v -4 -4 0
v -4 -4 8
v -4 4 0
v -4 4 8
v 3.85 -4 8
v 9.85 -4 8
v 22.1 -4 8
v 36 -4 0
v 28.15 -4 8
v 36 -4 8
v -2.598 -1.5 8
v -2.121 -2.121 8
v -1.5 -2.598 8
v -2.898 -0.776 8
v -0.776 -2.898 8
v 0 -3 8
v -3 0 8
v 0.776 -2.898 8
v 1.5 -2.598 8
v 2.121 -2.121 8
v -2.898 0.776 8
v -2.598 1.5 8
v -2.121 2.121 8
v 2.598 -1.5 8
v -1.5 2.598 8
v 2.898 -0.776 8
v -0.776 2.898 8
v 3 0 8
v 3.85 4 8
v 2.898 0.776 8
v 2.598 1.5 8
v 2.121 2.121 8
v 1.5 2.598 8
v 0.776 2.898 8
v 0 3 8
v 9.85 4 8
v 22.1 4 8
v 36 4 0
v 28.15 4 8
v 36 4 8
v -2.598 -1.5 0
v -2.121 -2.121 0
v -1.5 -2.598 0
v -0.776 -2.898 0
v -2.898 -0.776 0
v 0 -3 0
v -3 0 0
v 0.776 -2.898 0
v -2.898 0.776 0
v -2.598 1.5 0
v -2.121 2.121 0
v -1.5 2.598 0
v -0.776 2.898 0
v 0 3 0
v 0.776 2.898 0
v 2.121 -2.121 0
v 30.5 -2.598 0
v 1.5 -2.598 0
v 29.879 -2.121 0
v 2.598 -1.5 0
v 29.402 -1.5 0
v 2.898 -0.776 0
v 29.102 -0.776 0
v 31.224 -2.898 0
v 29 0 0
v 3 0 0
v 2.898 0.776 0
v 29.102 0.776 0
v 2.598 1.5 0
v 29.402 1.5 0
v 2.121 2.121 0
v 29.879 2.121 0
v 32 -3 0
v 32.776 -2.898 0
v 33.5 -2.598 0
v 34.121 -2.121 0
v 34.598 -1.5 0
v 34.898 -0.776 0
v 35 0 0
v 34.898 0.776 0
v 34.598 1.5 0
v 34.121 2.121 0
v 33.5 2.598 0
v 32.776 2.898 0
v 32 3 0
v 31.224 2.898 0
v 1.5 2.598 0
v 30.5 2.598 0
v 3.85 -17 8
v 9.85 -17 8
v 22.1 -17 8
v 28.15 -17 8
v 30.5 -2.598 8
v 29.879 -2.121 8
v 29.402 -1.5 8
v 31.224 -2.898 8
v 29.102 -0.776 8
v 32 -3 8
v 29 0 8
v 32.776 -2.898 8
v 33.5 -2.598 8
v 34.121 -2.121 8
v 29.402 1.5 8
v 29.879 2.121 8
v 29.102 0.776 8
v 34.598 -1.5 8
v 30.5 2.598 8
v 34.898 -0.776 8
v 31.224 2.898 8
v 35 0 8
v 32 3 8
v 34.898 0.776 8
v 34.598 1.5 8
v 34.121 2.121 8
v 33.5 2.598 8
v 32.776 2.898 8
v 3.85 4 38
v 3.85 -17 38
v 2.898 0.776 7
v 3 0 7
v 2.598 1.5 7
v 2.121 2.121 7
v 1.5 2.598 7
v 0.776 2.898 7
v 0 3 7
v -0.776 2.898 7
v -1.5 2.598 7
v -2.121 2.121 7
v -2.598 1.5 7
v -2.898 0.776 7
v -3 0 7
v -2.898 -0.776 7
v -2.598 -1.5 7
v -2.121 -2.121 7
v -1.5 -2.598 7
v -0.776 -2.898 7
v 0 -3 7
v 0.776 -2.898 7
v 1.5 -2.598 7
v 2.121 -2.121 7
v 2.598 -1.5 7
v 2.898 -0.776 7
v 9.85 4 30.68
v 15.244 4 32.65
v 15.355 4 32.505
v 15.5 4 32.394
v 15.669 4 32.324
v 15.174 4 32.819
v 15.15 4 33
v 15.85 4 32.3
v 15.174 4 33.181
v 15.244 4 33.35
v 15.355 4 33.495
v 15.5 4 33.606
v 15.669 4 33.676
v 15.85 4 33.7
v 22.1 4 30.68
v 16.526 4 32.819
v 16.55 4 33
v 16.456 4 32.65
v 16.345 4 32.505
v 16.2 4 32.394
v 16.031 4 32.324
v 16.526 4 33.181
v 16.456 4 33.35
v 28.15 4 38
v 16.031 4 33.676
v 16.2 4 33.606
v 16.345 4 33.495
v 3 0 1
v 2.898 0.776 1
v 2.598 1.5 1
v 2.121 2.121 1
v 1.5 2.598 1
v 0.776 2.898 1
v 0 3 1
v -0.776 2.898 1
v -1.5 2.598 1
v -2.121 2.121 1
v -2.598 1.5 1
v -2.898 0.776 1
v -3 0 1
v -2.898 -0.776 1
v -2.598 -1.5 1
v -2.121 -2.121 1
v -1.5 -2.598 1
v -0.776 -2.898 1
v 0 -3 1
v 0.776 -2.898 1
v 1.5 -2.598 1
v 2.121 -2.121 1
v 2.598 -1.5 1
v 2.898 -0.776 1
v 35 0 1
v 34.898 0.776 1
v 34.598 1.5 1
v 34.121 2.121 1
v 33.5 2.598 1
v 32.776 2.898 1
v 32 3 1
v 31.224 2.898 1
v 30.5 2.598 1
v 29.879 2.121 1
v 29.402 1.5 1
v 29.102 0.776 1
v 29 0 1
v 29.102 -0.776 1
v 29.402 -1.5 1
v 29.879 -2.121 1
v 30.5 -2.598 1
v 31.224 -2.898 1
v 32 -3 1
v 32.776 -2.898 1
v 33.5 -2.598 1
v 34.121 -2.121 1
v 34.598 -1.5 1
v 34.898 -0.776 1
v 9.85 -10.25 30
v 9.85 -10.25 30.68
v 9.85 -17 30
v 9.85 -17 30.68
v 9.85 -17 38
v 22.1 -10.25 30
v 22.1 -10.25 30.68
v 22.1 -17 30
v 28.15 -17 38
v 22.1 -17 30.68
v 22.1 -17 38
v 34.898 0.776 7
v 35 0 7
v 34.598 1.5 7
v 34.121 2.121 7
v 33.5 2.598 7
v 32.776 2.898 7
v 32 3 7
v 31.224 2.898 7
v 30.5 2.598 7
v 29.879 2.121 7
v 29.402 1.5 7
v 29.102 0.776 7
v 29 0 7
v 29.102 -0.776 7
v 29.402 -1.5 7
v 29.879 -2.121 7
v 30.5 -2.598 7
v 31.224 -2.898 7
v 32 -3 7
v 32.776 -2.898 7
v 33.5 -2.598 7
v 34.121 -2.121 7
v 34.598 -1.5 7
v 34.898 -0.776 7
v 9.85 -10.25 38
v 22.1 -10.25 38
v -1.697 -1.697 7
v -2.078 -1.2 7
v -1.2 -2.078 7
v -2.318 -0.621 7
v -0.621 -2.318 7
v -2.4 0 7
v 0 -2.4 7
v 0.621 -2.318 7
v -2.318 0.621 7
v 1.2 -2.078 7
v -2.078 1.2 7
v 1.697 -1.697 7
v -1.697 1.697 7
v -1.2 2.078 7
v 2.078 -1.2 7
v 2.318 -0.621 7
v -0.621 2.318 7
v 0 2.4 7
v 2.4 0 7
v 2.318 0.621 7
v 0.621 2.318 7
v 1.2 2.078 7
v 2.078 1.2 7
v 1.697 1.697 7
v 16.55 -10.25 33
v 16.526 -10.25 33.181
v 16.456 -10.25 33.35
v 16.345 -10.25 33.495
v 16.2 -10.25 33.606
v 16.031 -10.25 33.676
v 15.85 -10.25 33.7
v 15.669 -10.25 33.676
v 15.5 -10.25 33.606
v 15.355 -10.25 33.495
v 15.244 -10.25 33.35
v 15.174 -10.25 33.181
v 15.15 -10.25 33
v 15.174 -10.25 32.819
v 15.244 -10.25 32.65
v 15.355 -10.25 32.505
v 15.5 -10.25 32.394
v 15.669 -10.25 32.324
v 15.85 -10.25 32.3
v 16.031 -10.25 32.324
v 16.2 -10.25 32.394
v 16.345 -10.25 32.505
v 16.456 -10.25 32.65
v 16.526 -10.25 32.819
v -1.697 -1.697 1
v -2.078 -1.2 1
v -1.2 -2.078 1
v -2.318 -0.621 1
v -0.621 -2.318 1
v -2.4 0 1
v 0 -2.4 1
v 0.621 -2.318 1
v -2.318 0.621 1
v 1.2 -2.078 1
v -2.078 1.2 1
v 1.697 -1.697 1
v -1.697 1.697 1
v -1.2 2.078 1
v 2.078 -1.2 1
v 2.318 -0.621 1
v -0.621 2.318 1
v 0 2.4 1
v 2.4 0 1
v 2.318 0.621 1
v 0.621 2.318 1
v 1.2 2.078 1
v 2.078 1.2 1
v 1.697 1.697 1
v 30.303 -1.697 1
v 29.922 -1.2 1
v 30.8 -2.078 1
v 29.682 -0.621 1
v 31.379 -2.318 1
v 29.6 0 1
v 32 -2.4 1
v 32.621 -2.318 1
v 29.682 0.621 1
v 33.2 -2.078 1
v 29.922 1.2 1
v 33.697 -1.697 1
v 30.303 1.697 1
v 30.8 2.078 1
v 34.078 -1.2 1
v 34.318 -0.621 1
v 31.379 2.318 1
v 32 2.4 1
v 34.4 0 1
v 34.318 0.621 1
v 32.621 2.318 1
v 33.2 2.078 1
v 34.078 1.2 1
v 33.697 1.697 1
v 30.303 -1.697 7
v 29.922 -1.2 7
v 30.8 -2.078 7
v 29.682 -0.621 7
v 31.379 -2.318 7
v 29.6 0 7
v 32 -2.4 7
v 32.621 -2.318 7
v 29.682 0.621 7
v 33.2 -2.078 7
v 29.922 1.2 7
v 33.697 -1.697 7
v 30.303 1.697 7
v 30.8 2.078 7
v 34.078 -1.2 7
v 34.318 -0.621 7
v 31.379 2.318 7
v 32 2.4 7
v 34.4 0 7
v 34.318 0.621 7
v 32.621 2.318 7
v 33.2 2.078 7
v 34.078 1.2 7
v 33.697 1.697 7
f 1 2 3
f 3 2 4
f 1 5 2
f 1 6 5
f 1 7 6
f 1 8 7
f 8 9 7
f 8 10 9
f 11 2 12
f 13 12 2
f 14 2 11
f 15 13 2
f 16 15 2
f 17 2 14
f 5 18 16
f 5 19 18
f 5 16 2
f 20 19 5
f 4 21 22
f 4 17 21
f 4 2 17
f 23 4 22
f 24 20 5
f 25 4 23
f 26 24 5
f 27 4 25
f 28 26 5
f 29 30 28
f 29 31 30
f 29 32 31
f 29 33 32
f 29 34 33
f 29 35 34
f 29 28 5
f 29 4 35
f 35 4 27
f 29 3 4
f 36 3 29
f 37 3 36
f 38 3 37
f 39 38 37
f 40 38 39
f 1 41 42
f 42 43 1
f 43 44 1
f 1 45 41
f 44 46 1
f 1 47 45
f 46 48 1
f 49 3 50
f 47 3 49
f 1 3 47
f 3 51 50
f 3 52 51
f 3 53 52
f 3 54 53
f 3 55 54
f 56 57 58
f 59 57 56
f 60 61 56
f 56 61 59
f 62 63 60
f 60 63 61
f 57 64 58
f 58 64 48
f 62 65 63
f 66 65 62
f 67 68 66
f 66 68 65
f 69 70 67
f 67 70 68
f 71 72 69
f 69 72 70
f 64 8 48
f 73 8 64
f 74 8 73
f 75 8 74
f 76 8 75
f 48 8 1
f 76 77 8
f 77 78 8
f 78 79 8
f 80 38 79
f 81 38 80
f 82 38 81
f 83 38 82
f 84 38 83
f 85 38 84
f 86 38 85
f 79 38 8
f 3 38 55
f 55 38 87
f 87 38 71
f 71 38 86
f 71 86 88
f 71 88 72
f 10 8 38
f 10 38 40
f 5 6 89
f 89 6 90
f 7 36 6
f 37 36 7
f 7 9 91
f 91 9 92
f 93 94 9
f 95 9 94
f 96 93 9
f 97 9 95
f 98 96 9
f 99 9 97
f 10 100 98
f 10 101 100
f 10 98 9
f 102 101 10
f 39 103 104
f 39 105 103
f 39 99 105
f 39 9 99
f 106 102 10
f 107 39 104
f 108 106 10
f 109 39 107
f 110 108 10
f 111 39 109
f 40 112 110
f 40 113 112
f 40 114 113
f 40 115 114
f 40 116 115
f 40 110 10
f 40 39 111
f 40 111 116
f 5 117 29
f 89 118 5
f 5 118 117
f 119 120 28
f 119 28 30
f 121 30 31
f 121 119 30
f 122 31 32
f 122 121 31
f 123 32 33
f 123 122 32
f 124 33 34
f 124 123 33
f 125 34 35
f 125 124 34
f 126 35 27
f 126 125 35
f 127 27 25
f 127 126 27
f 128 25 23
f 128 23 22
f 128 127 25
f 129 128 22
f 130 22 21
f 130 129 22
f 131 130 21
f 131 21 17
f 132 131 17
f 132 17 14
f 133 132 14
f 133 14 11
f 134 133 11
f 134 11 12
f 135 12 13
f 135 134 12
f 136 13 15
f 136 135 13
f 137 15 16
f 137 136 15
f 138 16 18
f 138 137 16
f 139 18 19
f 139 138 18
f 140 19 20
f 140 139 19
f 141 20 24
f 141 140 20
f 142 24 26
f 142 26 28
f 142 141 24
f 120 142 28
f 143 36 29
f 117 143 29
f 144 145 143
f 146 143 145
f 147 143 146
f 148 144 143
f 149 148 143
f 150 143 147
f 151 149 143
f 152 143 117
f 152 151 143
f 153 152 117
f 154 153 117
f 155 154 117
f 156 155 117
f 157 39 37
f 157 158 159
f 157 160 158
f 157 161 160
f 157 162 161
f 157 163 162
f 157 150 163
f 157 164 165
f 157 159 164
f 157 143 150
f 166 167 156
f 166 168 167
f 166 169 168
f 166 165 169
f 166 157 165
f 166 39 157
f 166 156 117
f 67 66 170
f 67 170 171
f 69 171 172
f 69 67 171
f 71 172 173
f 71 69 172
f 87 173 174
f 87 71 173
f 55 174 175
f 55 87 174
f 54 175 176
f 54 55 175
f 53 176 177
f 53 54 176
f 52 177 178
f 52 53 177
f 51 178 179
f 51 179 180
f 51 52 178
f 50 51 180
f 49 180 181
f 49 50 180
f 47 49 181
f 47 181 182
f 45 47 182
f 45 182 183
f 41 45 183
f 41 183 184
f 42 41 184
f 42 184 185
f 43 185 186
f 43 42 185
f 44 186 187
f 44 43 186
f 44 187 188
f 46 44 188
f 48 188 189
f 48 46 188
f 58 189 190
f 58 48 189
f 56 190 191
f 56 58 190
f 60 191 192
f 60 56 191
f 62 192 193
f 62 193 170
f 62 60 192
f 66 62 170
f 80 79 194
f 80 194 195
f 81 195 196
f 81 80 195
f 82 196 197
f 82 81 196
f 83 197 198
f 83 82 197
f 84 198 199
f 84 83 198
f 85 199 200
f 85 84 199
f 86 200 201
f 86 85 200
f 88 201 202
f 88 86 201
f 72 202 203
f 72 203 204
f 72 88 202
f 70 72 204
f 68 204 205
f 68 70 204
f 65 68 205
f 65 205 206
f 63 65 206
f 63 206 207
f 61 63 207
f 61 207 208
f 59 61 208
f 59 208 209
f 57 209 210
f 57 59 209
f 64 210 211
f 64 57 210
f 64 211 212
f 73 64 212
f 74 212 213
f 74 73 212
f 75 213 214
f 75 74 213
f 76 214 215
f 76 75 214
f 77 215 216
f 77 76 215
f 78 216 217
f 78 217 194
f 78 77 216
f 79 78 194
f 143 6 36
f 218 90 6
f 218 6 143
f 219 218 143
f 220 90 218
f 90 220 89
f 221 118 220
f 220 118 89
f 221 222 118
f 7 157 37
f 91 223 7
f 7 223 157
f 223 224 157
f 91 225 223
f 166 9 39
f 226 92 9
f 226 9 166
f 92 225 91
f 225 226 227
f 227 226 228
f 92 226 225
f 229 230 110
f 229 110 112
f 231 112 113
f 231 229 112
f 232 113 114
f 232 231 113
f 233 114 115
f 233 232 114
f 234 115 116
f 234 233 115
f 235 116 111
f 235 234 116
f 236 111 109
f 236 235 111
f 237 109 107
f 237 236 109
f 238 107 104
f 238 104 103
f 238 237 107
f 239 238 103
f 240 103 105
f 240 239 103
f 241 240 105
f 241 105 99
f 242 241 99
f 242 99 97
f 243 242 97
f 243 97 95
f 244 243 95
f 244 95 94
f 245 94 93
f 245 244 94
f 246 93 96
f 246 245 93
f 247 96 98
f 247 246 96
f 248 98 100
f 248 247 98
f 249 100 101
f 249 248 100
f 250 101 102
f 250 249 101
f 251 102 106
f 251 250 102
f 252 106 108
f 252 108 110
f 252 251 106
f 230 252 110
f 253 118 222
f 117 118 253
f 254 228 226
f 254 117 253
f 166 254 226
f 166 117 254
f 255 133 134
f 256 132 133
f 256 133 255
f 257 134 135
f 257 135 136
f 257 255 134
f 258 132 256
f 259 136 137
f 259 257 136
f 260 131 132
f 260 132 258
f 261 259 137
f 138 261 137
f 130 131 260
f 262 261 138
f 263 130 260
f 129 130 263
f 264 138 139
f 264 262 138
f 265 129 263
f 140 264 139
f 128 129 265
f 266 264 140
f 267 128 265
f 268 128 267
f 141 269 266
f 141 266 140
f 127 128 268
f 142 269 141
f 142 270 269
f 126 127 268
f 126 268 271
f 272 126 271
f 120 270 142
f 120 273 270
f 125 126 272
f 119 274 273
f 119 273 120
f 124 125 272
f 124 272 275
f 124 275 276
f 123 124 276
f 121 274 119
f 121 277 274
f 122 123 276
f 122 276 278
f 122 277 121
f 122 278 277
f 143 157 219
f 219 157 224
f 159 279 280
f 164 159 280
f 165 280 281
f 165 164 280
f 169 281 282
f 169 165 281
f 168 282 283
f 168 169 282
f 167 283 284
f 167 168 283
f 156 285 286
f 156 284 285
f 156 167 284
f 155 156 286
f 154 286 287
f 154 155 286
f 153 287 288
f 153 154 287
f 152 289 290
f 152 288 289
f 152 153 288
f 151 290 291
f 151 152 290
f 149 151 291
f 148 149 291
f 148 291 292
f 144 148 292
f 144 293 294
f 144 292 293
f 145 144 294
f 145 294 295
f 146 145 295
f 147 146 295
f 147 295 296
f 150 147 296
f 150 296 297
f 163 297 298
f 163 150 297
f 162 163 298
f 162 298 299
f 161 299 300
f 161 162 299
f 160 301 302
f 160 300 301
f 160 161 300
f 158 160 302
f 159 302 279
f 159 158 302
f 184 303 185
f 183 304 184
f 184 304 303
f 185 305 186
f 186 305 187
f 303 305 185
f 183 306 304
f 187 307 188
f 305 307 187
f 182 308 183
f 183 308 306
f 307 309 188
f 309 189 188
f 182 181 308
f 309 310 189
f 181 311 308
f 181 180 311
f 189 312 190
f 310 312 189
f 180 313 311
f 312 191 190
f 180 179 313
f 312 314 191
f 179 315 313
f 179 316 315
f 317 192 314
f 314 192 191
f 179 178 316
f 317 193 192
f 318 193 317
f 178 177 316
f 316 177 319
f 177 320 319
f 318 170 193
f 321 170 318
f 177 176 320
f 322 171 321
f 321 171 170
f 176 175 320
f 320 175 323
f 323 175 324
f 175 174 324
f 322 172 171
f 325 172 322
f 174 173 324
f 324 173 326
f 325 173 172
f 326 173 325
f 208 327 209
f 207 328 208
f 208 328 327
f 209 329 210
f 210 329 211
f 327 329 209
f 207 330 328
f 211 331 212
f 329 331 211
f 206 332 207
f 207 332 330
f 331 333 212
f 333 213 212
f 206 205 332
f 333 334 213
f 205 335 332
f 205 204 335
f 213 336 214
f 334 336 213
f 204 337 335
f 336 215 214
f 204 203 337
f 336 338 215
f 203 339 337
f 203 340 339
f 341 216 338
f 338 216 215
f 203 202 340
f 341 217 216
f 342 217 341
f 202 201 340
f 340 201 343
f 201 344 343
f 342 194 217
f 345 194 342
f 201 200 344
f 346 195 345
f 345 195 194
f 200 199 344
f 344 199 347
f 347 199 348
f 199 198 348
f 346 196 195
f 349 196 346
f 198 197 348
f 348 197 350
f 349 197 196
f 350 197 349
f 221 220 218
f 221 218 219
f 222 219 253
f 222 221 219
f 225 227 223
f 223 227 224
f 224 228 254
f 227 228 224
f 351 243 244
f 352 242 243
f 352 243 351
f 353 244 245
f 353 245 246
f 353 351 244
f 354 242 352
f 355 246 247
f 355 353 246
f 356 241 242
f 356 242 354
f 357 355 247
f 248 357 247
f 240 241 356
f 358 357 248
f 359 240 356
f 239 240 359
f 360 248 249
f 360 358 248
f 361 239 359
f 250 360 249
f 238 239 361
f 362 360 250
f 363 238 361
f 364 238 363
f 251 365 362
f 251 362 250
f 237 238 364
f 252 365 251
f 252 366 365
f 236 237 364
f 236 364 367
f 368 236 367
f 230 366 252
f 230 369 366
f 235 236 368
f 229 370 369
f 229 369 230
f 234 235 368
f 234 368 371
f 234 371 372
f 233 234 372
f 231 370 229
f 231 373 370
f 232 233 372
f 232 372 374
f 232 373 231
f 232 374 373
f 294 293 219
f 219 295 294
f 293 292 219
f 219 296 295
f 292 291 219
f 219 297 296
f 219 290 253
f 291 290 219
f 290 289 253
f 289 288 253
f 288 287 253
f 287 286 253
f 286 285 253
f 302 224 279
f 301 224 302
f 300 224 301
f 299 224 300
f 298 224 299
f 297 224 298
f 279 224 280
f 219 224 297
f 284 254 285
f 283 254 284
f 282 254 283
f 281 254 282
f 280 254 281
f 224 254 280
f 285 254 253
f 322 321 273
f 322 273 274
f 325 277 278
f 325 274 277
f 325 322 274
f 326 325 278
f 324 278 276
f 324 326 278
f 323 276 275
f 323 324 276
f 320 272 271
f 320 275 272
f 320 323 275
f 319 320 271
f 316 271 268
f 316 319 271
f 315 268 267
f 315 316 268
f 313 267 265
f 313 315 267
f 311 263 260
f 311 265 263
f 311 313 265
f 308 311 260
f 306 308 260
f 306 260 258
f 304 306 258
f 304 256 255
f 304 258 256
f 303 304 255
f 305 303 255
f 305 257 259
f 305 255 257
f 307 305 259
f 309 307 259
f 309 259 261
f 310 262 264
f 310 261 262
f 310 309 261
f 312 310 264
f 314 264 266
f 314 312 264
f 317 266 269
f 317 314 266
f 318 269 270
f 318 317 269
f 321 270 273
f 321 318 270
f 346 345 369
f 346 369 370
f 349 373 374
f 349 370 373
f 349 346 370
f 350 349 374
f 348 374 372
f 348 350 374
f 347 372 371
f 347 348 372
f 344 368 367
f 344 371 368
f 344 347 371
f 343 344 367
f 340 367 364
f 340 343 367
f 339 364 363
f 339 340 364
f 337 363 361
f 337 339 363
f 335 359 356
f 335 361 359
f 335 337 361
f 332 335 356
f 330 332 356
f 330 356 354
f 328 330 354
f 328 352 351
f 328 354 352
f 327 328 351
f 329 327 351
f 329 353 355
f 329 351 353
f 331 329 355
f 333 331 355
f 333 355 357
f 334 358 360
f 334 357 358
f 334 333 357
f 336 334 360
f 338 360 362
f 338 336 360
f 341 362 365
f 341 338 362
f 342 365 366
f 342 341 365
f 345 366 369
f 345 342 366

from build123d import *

# Parameters (mm, degrees)
CYLINDER009_R     = 0.7
CYLINDER009_DEPTH = 16
BOX010_W          = 12.25
BOX010_H          = 10
BOX010_DEPTH      = 10
BOX009_W          = 12.25
BOX009_H          = 23.78
BOX009_DEPTH      = 22.68
BOX011_W          = 24.3
BOX011_H          = 21
BOX011_DEPTH      = 30
CYLINDER012_R     = 3
CYLINDER012_DEPTH = 1
CYLINDER013_R     = 2.4
CYLINDER013_DEPTH = 8
CYLINDER011_R     = 3
CYLINDER011_DEPTH = 1
ARRAY_X_COUNT     = 2
ARRAY_X_PITCH     = 32
BOX012_W          = 40
BOX012_H          = 8
BOX012_DEPTH      = 8


with BuildPart() as cylinder009:
    # Cylinder009 → Cylinder009 (new body)
    with BuildSketch(Plane(origin=(6, 22, 25), x_dir=(1, 0, 0), z_dir=(0, -1, 0))):
        Circle(CYLINDER009_R)
    extrude(amount=CYLINDER009_DEPTH)


with BuildPart() as cube006:
    # Box010 → Box010 (new body)
    with BuildSketch(Plane(origin=(0, -3.25, 22), x_dir=(1, 0, 0), z_dir=(0, 0, 1))):
        with Locations((6.125, 5)):
            Rectangle(BOX010_W, BOX010_H)
    extrude(amount=BOX010_DEPTH)


with BuildPart() as servo004:
    # Box009 → Box009 (new body)
    with BuildSketch(Plane(origin=(0, -1, 0), x_dir=(1, 0, 0), z_dir=(0, 0, 1))):
        with Locations((6.125, 11.89)):
            Rectangle(BOX009_W, BOX009_H)
    extrude(amount=BOX009_DEPTH)

    # Fusion007: union Cube006
    add(cube006.part)


with BuildPart() as fusion008:
    # Fusion008 base: copy of Cube006
    add(cube006.part)

    # Fusion008: union servo004
    add(servo004.part)


with BuildPart() as box:
    # Box011 → Box011 (new body)
    with BuildSketch(Plane(origin=(-6, 0, 0), x_dir=(1, 0, 0), z_dir=(0, 0, 1))):
        with Locations((12.15, 10.5)):
            Rectangle(BOX011_W, BOX011_H)
    extrude(amount=BOX011_DEPTH)

    # Cut006: cut Fusion008
    add(fusion008.part, mode=Mode.SUBTRACT)

    # Cut007: cut Cylinder009
    add(cylinder009.part, mode=Mode.SUBTRACT)


with BuildPart() as box_1:
    # Cut007 placement: moved
    add(box.part.moved(Location((9.85, -17, 8))))


with BuildPart() as cylinder012:
    # Cylinder012 → Cylinder012 (new body)
    with BuildSketch(Plane.XY.offset(7)):
        Circle(CYLINDER012_R)
    extrude(amount=CYLINDER012_DEPTH)


with BuildPart() as cylinder013:
    # Cylinder013 → Cylinder013 (new body)
    with BuildSketch(Plane.XY):
        Circle(CYLINDER013_R)
    extrude(amount=CYLINDER013_DEPTH)


with BuildPart() as array:
    # Cylinder011 → Cylinder011 (new body)
    with BuildSketch(Plane.XY):
        Circle(CYLINDER011_R)
    extrude(amount=CYLINDER011_DEPTH)

    # Fusion009: union Cylinder012, Cylinder013
    add(cylinder012.part)
    add(cylinder013.part)

    # Array X: Array ×2


with BuildPart() as array_1:
    add(array.part)
    with Locations(*[(i * ARRAY_X_PITCH, 0, 0) for i in range(1, ARRAY_X_COUNT)]):
        add(array.part)


with BuildPart() as fusion010:
    # Box012 → Box012 (new body)
    with BuildSketch(Plane(origin=(-4, -4, 0), x_dir=(1, 0, 0), z_dir=(0, 0, 1))):
        with Locations((20, 4)):
            Rectangle(BOX012_W, BOX012_H)
    extrude(amount=BOX012_DEPTH)

    # Cut008: cut Array
    add(array_1.part, mode=Mode.SUBTRACT)

    # Fusion010: union box
    add(box_1.part)


solid = fusion010.part
